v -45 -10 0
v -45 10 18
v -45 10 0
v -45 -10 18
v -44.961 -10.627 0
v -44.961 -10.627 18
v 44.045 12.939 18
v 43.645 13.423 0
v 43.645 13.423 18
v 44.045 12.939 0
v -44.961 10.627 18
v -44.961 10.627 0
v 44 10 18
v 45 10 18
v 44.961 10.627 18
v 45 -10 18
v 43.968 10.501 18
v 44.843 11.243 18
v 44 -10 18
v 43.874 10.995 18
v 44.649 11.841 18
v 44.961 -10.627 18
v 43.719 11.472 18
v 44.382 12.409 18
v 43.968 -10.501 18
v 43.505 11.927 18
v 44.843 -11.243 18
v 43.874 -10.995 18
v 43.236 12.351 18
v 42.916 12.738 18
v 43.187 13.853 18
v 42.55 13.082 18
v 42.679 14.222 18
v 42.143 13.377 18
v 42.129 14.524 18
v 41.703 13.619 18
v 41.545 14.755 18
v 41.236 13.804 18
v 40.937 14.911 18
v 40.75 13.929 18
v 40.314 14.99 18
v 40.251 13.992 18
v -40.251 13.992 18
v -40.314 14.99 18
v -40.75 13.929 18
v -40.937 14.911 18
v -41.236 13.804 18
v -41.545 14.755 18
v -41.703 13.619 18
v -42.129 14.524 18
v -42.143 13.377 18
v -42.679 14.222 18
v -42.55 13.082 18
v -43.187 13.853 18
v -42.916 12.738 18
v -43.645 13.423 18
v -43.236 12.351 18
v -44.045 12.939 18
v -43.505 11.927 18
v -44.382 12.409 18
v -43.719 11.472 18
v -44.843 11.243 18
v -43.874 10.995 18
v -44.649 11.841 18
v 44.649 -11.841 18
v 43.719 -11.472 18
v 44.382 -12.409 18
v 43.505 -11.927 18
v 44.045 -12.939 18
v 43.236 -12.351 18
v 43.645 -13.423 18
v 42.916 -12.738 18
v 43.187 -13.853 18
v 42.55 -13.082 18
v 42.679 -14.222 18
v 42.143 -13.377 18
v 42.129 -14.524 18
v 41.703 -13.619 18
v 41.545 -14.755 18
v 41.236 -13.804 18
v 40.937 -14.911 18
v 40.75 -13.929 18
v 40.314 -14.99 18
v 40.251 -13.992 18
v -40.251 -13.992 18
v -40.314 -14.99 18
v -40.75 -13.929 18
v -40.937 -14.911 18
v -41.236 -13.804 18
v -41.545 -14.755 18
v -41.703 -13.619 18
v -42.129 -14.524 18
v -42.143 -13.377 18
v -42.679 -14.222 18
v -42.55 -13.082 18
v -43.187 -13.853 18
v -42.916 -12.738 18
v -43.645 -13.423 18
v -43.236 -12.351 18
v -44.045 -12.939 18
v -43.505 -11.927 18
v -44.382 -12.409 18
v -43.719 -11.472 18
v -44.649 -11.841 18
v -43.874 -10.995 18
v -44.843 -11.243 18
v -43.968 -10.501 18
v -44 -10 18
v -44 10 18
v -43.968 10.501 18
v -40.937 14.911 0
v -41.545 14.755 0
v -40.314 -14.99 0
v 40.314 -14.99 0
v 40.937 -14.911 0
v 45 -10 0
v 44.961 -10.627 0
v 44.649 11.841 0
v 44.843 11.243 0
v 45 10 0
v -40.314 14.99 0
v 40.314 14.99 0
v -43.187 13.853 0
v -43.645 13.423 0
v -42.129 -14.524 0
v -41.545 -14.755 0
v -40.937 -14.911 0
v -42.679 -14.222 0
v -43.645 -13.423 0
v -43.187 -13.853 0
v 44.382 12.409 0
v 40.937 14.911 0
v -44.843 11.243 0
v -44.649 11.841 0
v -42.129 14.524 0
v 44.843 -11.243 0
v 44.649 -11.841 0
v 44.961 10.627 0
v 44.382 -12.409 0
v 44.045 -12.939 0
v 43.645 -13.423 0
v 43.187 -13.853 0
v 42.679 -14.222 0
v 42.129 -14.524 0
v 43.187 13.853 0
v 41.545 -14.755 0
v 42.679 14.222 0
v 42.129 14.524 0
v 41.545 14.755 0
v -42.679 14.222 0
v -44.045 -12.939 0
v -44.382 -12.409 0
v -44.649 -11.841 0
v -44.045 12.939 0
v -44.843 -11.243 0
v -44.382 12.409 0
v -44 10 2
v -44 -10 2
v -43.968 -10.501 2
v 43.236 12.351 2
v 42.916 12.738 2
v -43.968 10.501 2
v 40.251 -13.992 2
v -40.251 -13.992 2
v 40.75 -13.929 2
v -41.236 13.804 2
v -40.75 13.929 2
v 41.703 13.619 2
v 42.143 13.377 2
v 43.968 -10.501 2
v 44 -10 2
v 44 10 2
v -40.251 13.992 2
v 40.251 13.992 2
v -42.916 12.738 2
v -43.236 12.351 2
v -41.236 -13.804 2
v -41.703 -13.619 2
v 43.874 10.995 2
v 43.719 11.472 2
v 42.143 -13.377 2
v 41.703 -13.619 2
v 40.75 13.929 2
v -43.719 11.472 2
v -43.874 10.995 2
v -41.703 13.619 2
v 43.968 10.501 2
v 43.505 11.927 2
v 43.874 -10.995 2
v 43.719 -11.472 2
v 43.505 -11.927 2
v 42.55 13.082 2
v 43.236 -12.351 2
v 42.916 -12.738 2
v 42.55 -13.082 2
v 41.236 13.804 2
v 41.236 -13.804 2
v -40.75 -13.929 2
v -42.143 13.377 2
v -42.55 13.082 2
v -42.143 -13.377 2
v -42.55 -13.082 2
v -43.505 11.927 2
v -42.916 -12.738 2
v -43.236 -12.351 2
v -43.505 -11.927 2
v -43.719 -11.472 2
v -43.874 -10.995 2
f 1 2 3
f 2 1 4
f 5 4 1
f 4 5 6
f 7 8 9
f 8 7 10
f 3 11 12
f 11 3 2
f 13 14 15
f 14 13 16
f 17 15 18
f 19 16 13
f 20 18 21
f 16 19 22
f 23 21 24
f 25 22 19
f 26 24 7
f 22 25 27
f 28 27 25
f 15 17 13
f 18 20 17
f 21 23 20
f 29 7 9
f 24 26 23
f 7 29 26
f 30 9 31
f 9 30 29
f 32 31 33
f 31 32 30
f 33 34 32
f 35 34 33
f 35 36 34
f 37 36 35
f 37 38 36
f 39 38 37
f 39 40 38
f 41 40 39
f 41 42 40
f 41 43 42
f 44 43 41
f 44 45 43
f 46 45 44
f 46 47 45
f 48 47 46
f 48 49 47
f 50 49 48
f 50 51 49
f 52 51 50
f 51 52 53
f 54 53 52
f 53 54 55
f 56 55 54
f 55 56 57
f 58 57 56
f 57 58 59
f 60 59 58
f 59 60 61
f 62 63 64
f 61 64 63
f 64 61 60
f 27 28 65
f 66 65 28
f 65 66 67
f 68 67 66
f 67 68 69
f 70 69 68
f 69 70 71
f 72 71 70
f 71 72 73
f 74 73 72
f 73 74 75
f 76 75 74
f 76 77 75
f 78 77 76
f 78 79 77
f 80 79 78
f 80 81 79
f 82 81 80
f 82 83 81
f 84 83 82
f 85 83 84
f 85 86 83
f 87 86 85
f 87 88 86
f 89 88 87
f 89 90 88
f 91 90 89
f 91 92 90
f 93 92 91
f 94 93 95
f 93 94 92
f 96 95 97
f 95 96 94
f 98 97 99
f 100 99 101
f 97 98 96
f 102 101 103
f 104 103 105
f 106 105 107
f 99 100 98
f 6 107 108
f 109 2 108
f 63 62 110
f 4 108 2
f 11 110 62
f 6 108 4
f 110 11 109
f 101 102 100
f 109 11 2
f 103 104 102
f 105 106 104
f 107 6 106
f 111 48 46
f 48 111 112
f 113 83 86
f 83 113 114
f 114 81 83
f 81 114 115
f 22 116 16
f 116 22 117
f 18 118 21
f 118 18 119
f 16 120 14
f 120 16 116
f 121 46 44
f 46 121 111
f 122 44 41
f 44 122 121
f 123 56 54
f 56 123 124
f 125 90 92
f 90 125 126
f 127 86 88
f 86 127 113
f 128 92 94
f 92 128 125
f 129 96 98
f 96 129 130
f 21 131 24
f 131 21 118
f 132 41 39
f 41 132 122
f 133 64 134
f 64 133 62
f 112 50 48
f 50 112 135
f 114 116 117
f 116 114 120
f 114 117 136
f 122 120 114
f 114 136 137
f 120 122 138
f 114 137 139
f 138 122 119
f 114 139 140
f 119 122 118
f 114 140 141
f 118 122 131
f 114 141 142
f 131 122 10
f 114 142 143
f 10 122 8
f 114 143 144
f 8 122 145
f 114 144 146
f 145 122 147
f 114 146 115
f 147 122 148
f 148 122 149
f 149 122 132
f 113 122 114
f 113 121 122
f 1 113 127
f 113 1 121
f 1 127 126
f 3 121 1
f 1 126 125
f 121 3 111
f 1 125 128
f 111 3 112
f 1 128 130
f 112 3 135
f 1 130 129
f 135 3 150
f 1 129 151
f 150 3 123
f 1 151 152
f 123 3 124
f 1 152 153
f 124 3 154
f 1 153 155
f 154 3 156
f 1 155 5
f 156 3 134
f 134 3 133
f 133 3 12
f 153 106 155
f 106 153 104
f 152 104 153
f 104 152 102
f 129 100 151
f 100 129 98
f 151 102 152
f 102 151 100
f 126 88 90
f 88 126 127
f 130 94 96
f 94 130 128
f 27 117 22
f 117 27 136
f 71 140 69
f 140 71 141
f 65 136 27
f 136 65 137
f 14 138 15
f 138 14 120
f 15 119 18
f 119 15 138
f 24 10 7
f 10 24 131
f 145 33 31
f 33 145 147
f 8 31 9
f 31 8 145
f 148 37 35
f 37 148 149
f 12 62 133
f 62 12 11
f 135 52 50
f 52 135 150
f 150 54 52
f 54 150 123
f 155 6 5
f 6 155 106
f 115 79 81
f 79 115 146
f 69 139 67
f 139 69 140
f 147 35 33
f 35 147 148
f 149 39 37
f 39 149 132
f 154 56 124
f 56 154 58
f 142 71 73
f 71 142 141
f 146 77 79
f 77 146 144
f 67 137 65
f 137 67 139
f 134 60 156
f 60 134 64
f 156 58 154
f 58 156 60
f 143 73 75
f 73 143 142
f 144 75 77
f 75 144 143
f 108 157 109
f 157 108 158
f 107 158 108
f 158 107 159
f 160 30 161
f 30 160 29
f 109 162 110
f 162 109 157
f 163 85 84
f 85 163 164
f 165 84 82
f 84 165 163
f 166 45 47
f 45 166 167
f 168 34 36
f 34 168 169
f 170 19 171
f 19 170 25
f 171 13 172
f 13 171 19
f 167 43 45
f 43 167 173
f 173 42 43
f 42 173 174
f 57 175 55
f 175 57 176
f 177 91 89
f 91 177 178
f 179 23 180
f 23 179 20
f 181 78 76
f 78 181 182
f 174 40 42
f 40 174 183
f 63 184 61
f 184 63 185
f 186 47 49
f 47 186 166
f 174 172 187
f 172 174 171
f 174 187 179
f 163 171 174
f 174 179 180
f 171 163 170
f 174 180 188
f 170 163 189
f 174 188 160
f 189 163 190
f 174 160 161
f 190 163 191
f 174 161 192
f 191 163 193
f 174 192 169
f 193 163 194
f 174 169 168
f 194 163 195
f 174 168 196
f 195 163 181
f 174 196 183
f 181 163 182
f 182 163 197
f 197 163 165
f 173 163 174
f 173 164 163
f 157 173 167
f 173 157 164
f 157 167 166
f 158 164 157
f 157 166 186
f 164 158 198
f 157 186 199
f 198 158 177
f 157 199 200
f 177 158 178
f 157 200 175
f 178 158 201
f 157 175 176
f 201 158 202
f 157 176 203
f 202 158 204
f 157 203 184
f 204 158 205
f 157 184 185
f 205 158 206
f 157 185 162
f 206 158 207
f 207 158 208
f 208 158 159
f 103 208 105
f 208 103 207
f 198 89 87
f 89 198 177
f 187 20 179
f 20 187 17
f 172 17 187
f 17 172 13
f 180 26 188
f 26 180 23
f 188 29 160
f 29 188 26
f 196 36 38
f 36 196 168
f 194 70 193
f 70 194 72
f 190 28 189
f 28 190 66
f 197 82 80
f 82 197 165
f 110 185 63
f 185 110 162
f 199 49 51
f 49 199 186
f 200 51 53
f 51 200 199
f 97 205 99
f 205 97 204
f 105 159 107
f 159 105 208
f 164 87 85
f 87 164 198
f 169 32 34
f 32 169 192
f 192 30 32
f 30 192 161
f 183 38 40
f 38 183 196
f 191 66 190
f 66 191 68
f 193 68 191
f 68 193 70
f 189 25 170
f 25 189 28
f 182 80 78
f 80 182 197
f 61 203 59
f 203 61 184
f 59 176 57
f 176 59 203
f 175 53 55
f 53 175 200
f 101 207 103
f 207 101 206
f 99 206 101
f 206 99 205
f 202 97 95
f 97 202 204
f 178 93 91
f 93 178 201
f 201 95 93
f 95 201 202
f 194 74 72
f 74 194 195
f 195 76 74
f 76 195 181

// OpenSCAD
$fn = 50;


difference() {
	union() {
		hull() {
			translate(v = [-40.0000000000, 10.0000000000, 0]) {
				cylinder(h = 18, r = 5);
			}
			translate(v = [40.0000000000, 10.0000000000, 0]) {
				cylinder(h = 18, r = 5);
			}
			translate(v = [-40.0000000000, -10.0000000000, 0]) {
				cylinder(h = 18, r = 5);
			}
			translate(v = [40.0000000000, -10.0000000000, 0]) {
				cylinder(h = 18, r = 5);
			}
		}
	}
	union() {
		translate(v = [0, 0, 2]) {
			hull() {
				translate(v = [-40.0000000000, 10.0000000000, 0]) {
					cylinder(h = 16, r = 4);
				}
				translate(v = [40.0000000000, 10.0000000000, 0]) {
					cylinder(h = 16, r = 4);
				}
				translate(v = [-40.0000000000, -10.0000000000, 0]) {
					cylinder(h = 16, r = 4);
				}
				translate(v = [40.0000000000, -10.0000000000, 0]) {
					cylinder(h = 16, r = 4);
				}
			}
		}
	}
}
